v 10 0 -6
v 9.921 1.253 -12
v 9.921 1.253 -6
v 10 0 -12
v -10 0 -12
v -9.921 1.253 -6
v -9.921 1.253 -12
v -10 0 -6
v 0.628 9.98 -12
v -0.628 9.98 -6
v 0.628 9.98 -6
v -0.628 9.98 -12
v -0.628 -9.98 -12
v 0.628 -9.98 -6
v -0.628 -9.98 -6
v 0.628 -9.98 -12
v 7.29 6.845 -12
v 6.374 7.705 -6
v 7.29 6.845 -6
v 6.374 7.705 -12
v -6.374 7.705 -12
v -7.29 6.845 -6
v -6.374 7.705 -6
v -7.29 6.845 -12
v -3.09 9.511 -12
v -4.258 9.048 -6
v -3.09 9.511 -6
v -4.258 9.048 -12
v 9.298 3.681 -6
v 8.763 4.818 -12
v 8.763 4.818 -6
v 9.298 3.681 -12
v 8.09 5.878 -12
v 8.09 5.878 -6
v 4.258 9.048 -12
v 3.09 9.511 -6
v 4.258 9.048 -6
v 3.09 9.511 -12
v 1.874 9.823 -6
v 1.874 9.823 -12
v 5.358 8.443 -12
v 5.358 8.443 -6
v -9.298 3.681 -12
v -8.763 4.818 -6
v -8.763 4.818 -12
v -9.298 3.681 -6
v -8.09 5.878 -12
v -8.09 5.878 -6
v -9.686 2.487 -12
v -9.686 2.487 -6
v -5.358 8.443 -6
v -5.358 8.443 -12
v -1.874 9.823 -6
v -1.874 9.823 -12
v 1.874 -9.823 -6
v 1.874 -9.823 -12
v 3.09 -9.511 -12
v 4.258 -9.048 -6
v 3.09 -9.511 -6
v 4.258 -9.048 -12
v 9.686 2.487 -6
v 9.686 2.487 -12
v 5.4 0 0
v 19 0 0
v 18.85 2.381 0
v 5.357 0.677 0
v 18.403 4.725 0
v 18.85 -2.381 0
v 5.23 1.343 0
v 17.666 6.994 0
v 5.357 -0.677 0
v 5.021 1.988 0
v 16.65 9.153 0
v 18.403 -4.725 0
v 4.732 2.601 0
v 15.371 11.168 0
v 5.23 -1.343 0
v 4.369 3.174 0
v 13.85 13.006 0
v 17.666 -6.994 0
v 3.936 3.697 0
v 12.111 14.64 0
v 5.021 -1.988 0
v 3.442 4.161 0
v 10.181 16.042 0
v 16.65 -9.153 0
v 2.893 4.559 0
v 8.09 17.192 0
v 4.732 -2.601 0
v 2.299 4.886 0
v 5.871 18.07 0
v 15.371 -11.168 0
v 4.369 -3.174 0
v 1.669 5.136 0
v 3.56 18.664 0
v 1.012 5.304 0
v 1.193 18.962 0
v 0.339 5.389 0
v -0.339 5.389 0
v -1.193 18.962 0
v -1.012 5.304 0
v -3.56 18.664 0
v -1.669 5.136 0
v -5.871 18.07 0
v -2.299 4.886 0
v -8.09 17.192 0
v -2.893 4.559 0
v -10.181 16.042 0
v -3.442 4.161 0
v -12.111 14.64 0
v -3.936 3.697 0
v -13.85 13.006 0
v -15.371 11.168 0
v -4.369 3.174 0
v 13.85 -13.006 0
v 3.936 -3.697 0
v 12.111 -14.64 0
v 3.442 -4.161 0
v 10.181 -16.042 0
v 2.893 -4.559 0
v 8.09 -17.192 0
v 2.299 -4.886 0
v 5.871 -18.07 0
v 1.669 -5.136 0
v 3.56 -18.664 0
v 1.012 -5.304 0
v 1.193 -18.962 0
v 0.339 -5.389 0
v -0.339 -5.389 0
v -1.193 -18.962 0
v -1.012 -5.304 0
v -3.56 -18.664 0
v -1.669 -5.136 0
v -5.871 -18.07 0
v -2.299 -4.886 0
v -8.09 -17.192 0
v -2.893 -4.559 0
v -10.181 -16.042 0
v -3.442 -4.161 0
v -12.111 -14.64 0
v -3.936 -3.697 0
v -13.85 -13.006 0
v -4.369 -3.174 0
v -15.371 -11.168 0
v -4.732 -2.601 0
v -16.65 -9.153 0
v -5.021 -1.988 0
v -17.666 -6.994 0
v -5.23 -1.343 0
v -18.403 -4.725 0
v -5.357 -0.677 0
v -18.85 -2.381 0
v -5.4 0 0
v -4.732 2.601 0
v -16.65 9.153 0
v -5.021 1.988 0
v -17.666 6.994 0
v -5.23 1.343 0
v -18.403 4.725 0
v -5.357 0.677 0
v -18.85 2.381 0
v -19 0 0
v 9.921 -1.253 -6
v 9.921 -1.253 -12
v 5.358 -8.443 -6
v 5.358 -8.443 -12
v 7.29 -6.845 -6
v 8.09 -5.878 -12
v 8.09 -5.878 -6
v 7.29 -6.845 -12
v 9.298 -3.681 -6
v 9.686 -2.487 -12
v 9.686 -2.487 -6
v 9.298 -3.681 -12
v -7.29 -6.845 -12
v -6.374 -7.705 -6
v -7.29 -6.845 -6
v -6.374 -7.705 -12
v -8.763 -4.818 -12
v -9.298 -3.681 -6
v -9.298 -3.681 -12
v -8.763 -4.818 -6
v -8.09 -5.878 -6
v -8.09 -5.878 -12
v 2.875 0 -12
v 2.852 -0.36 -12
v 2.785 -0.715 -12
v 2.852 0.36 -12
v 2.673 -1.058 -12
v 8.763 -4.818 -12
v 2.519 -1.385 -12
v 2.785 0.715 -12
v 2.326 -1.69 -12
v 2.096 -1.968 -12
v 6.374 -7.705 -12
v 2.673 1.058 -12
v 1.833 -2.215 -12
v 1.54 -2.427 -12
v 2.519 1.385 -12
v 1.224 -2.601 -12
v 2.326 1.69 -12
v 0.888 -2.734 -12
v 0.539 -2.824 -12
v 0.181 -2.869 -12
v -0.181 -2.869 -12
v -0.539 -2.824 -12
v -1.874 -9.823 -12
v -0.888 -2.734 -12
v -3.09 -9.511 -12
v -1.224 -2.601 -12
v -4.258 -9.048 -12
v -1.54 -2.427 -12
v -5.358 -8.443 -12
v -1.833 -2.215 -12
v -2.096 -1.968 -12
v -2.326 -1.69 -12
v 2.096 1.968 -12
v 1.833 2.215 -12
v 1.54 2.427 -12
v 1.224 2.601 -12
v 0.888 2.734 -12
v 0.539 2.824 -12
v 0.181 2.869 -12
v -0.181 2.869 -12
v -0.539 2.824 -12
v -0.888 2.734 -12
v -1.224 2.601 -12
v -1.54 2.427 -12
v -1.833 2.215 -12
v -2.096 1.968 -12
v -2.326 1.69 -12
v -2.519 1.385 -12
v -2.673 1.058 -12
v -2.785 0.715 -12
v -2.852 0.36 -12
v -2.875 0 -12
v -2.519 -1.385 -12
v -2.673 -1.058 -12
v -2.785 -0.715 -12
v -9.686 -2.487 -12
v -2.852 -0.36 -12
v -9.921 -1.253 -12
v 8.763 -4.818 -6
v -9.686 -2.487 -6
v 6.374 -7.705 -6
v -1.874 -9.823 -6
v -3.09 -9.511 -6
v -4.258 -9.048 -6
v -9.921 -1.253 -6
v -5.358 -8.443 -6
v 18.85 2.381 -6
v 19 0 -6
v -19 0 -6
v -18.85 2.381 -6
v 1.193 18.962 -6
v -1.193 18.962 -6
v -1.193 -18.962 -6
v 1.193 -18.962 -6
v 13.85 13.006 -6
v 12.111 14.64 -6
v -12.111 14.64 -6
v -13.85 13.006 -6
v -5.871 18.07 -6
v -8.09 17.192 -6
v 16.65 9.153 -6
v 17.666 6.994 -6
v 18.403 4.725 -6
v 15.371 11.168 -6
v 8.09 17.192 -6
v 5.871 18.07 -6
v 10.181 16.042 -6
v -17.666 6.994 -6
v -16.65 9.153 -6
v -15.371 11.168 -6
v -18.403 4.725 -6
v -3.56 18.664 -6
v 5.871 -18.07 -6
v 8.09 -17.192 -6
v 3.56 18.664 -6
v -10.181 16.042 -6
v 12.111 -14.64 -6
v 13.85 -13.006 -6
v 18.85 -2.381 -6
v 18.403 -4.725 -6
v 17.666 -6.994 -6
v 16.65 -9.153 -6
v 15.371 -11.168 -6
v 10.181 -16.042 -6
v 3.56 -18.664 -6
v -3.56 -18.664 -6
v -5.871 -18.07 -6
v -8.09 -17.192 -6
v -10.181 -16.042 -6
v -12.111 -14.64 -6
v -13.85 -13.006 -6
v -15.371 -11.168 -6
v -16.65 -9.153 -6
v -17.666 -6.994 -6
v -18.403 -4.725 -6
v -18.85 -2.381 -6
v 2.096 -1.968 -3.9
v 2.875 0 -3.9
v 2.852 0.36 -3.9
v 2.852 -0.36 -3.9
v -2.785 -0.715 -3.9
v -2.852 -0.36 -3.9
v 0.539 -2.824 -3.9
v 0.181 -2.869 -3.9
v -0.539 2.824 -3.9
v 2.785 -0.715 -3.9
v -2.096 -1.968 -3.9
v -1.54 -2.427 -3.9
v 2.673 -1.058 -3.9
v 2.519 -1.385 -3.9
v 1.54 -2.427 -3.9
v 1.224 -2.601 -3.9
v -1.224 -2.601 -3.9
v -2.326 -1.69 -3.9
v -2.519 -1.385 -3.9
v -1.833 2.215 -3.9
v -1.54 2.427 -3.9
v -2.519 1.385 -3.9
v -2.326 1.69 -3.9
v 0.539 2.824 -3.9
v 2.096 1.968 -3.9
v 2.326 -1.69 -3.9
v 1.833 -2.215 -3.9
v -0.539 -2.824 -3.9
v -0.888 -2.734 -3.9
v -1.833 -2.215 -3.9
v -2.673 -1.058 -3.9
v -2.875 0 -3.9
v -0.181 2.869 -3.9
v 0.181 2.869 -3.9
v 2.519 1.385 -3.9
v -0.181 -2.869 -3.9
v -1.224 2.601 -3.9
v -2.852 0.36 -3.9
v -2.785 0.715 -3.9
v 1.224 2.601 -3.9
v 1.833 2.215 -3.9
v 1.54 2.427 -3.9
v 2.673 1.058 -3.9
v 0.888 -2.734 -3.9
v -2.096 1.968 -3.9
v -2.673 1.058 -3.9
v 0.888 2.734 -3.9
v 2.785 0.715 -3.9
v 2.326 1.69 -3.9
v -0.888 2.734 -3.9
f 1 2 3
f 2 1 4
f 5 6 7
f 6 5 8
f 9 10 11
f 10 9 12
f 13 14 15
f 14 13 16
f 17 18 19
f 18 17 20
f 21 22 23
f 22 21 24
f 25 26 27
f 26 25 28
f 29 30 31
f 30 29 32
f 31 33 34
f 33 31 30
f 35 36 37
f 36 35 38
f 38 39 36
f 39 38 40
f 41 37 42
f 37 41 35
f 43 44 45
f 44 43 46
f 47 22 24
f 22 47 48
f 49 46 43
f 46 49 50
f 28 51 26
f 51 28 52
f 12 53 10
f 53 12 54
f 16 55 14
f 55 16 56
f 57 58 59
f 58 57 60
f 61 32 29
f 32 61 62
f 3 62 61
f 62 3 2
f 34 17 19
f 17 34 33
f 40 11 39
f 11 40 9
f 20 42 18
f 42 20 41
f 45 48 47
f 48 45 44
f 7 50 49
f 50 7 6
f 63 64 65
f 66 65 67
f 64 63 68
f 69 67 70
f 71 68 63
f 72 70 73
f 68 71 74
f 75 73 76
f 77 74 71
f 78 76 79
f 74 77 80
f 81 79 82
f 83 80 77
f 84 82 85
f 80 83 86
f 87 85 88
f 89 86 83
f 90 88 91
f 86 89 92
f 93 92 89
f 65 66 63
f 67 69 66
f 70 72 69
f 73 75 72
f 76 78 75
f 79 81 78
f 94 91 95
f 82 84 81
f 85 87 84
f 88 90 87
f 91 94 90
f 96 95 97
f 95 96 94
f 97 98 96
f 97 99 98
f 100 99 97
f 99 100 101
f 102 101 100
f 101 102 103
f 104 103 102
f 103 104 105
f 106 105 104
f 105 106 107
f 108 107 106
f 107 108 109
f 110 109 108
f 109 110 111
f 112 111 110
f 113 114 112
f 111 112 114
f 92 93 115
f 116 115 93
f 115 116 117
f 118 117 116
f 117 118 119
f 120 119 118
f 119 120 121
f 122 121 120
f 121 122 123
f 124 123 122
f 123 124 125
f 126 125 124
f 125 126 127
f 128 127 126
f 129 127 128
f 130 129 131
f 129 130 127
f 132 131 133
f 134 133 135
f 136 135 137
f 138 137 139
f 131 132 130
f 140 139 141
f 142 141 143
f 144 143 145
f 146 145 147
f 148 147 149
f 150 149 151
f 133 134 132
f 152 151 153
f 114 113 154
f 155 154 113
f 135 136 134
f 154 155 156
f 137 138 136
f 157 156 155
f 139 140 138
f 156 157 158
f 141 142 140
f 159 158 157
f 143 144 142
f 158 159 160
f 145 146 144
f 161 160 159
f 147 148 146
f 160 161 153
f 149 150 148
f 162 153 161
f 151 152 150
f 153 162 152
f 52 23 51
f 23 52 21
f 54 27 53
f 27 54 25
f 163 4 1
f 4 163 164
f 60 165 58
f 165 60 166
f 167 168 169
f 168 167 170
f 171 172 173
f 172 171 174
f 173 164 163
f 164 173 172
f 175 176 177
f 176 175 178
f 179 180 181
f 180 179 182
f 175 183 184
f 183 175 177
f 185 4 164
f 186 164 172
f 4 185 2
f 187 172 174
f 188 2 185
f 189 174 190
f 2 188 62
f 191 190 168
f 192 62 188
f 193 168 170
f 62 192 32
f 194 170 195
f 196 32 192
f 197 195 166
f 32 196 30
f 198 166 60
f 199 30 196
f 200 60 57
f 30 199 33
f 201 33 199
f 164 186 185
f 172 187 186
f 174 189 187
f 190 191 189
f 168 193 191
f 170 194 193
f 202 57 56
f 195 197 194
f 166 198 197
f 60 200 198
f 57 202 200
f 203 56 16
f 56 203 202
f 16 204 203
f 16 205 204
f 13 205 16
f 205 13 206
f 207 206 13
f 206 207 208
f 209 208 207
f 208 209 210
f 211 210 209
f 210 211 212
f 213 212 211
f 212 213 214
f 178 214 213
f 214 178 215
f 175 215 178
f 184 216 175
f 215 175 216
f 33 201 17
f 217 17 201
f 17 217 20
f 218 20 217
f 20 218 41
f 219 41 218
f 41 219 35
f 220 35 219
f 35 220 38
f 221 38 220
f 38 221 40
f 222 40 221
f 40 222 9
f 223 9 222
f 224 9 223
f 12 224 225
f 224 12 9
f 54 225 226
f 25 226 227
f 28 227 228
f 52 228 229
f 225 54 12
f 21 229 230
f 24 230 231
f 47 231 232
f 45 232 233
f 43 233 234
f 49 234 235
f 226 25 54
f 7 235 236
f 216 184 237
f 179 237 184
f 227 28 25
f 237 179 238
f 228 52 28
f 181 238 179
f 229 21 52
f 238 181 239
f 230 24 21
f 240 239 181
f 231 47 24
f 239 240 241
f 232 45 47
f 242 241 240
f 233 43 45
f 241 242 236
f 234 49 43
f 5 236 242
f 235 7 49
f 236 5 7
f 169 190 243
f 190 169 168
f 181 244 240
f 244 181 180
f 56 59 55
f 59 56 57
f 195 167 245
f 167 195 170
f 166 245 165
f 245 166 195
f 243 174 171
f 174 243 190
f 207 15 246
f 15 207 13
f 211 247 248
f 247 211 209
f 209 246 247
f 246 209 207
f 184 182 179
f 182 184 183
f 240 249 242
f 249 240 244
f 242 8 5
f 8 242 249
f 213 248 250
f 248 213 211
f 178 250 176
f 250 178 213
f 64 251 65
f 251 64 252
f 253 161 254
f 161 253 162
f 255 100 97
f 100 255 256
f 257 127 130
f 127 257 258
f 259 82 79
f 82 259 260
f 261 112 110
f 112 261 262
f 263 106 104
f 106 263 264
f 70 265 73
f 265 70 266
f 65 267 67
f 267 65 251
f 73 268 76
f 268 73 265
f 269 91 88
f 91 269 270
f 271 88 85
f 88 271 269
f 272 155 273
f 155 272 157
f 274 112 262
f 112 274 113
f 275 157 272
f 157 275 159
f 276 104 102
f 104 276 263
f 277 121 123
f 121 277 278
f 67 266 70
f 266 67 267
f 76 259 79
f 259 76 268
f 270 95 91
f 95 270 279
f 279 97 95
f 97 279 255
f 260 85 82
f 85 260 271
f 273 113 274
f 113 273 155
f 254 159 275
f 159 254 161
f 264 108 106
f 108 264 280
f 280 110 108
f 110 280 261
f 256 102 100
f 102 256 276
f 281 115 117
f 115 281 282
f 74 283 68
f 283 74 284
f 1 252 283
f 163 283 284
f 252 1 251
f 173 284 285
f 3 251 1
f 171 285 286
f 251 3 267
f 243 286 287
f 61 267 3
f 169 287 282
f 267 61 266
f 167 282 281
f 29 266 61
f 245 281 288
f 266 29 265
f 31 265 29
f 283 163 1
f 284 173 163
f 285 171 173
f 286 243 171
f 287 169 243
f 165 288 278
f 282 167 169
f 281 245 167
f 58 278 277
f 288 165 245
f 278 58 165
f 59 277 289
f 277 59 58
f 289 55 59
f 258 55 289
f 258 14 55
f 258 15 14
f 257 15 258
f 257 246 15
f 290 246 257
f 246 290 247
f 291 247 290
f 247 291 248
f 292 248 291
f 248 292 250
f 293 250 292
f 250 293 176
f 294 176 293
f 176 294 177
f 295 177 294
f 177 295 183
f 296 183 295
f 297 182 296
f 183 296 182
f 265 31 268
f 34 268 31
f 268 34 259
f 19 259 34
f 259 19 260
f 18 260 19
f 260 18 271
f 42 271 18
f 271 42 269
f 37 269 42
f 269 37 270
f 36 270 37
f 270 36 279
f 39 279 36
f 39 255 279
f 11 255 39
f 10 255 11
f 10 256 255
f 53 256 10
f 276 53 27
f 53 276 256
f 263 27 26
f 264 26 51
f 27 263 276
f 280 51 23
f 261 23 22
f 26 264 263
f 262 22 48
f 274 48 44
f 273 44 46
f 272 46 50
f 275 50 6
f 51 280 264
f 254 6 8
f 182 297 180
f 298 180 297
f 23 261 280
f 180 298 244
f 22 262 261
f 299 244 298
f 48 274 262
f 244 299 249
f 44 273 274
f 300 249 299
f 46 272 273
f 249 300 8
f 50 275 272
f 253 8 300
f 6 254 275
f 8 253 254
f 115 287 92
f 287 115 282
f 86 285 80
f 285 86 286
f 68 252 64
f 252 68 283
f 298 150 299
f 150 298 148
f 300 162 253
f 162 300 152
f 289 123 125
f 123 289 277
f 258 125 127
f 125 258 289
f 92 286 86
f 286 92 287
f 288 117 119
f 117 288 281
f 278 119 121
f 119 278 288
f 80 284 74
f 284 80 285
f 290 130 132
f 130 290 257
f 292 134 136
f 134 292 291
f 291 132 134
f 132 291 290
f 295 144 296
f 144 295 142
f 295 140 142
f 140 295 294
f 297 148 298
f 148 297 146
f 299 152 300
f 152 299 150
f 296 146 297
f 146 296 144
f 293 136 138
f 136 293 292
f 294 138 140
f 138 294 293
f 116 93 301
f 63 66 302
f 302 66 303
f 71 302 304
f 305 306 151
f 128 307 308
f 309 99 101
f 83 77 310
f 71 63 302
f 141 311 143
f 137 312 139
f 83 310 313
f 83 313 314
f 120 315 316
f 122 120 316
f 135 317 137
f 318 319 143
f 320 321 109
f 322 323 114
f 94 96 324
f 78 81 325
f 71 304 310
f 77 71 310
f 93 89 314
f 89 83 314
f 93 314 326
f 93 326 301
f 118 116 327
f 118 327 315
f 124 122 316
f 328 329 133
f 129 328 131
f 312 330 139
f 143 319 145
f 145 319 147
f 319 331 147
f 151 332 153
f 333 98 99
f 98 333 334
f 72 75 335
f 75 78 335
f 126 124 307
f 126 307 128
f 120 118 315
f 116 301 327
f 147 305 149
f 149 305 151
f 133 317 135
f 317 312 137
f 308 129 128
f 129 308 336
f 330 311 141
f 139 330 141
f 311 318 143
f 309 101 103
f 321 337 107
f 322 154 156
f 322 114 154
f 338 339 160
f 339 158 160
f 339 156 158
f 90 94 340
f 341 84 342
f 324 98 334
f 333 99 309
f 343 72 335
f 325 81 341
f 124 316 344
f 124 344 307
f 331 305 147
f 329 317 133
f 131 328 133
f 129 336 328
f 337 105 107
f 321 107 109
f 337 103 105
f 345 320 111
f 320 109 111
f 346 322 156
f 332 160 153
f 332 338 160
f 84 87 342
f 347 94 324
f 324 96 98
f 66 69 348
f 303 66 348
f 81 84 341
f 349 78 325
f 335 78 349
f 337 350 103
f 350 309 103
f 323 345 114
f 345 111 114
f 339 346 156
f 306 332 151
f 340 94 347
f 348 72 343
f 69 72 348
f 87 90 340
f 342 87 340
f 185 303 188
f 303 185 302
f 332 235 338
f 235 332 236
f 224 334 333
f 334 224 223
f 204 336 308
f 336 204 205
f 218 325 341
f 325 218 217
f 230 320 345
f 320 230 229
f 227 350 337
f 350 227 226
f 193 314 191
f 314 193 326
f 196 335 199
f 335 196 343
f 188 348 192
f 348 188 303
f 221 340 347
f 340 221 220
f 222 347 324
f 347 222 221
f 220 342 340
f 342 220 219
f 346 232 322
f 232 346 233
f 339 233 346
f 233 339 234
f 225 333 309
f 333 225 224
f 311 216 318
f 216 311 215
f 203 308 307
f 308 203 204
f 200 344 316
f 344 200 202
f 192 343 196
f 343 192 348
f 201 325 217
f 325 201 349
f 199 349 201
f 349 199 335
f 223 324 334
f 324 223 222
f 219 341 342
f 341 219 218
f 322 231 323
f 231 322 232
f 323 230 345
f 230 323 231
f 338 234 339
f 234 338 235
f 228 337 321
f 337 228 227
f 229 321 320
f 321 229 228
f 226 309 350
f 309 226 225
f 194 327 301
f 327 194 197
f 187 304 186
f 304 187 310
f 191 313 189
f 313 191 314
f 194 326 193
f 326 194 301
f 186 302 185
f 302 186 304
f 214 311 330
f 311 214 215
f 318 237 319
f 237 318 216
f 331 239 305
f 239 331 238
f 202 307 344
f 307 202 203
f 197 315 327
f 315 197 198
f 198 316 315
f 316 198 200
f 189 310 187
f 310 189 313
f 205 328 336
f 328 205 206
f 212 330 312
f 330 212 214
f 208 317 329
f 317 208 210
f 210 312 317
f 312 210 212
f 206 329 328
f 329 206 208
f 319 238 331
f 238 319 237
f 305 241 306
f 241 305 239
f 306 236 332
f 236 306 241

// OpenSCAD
$fn = 50;


difference() {
	union() {
		translate(v = [0, 0, -12.0000000000]) {
			cylinder(h = 12, r = 10.0000000000);
		}
		translate(v = [0, 0, -6.0000000000]) {
			cylinder(h = 6, r = 19.0000000000);
		}
	}
	union() {
		translate(v = [0, 0, 0]) {
			rotate(a = [0, 0, 0]) {
				difference() {
					union() {
						#translate(v = [0, 0, -12.0000000000]) {
							cylinder(h = 12, r = 2.6000000000);
						}
						#translate(v = [0, 0, -3.9000000000]) {
							cylinder(h = 3.9000000000, r1 = 2.8750000000, r2 = 5.4000000000);
						}
						#translate(v = [0, 0, -12.0000000000]) {
							cylinder(h = 12, r = 2.8750000000);
						}
						#translate(v = [0, 0, -12.0000000000]) {
							cylinder(h = 12, r = 2.6000000000);
						}
					}
					union();
				}
			}
		}
	}
}
